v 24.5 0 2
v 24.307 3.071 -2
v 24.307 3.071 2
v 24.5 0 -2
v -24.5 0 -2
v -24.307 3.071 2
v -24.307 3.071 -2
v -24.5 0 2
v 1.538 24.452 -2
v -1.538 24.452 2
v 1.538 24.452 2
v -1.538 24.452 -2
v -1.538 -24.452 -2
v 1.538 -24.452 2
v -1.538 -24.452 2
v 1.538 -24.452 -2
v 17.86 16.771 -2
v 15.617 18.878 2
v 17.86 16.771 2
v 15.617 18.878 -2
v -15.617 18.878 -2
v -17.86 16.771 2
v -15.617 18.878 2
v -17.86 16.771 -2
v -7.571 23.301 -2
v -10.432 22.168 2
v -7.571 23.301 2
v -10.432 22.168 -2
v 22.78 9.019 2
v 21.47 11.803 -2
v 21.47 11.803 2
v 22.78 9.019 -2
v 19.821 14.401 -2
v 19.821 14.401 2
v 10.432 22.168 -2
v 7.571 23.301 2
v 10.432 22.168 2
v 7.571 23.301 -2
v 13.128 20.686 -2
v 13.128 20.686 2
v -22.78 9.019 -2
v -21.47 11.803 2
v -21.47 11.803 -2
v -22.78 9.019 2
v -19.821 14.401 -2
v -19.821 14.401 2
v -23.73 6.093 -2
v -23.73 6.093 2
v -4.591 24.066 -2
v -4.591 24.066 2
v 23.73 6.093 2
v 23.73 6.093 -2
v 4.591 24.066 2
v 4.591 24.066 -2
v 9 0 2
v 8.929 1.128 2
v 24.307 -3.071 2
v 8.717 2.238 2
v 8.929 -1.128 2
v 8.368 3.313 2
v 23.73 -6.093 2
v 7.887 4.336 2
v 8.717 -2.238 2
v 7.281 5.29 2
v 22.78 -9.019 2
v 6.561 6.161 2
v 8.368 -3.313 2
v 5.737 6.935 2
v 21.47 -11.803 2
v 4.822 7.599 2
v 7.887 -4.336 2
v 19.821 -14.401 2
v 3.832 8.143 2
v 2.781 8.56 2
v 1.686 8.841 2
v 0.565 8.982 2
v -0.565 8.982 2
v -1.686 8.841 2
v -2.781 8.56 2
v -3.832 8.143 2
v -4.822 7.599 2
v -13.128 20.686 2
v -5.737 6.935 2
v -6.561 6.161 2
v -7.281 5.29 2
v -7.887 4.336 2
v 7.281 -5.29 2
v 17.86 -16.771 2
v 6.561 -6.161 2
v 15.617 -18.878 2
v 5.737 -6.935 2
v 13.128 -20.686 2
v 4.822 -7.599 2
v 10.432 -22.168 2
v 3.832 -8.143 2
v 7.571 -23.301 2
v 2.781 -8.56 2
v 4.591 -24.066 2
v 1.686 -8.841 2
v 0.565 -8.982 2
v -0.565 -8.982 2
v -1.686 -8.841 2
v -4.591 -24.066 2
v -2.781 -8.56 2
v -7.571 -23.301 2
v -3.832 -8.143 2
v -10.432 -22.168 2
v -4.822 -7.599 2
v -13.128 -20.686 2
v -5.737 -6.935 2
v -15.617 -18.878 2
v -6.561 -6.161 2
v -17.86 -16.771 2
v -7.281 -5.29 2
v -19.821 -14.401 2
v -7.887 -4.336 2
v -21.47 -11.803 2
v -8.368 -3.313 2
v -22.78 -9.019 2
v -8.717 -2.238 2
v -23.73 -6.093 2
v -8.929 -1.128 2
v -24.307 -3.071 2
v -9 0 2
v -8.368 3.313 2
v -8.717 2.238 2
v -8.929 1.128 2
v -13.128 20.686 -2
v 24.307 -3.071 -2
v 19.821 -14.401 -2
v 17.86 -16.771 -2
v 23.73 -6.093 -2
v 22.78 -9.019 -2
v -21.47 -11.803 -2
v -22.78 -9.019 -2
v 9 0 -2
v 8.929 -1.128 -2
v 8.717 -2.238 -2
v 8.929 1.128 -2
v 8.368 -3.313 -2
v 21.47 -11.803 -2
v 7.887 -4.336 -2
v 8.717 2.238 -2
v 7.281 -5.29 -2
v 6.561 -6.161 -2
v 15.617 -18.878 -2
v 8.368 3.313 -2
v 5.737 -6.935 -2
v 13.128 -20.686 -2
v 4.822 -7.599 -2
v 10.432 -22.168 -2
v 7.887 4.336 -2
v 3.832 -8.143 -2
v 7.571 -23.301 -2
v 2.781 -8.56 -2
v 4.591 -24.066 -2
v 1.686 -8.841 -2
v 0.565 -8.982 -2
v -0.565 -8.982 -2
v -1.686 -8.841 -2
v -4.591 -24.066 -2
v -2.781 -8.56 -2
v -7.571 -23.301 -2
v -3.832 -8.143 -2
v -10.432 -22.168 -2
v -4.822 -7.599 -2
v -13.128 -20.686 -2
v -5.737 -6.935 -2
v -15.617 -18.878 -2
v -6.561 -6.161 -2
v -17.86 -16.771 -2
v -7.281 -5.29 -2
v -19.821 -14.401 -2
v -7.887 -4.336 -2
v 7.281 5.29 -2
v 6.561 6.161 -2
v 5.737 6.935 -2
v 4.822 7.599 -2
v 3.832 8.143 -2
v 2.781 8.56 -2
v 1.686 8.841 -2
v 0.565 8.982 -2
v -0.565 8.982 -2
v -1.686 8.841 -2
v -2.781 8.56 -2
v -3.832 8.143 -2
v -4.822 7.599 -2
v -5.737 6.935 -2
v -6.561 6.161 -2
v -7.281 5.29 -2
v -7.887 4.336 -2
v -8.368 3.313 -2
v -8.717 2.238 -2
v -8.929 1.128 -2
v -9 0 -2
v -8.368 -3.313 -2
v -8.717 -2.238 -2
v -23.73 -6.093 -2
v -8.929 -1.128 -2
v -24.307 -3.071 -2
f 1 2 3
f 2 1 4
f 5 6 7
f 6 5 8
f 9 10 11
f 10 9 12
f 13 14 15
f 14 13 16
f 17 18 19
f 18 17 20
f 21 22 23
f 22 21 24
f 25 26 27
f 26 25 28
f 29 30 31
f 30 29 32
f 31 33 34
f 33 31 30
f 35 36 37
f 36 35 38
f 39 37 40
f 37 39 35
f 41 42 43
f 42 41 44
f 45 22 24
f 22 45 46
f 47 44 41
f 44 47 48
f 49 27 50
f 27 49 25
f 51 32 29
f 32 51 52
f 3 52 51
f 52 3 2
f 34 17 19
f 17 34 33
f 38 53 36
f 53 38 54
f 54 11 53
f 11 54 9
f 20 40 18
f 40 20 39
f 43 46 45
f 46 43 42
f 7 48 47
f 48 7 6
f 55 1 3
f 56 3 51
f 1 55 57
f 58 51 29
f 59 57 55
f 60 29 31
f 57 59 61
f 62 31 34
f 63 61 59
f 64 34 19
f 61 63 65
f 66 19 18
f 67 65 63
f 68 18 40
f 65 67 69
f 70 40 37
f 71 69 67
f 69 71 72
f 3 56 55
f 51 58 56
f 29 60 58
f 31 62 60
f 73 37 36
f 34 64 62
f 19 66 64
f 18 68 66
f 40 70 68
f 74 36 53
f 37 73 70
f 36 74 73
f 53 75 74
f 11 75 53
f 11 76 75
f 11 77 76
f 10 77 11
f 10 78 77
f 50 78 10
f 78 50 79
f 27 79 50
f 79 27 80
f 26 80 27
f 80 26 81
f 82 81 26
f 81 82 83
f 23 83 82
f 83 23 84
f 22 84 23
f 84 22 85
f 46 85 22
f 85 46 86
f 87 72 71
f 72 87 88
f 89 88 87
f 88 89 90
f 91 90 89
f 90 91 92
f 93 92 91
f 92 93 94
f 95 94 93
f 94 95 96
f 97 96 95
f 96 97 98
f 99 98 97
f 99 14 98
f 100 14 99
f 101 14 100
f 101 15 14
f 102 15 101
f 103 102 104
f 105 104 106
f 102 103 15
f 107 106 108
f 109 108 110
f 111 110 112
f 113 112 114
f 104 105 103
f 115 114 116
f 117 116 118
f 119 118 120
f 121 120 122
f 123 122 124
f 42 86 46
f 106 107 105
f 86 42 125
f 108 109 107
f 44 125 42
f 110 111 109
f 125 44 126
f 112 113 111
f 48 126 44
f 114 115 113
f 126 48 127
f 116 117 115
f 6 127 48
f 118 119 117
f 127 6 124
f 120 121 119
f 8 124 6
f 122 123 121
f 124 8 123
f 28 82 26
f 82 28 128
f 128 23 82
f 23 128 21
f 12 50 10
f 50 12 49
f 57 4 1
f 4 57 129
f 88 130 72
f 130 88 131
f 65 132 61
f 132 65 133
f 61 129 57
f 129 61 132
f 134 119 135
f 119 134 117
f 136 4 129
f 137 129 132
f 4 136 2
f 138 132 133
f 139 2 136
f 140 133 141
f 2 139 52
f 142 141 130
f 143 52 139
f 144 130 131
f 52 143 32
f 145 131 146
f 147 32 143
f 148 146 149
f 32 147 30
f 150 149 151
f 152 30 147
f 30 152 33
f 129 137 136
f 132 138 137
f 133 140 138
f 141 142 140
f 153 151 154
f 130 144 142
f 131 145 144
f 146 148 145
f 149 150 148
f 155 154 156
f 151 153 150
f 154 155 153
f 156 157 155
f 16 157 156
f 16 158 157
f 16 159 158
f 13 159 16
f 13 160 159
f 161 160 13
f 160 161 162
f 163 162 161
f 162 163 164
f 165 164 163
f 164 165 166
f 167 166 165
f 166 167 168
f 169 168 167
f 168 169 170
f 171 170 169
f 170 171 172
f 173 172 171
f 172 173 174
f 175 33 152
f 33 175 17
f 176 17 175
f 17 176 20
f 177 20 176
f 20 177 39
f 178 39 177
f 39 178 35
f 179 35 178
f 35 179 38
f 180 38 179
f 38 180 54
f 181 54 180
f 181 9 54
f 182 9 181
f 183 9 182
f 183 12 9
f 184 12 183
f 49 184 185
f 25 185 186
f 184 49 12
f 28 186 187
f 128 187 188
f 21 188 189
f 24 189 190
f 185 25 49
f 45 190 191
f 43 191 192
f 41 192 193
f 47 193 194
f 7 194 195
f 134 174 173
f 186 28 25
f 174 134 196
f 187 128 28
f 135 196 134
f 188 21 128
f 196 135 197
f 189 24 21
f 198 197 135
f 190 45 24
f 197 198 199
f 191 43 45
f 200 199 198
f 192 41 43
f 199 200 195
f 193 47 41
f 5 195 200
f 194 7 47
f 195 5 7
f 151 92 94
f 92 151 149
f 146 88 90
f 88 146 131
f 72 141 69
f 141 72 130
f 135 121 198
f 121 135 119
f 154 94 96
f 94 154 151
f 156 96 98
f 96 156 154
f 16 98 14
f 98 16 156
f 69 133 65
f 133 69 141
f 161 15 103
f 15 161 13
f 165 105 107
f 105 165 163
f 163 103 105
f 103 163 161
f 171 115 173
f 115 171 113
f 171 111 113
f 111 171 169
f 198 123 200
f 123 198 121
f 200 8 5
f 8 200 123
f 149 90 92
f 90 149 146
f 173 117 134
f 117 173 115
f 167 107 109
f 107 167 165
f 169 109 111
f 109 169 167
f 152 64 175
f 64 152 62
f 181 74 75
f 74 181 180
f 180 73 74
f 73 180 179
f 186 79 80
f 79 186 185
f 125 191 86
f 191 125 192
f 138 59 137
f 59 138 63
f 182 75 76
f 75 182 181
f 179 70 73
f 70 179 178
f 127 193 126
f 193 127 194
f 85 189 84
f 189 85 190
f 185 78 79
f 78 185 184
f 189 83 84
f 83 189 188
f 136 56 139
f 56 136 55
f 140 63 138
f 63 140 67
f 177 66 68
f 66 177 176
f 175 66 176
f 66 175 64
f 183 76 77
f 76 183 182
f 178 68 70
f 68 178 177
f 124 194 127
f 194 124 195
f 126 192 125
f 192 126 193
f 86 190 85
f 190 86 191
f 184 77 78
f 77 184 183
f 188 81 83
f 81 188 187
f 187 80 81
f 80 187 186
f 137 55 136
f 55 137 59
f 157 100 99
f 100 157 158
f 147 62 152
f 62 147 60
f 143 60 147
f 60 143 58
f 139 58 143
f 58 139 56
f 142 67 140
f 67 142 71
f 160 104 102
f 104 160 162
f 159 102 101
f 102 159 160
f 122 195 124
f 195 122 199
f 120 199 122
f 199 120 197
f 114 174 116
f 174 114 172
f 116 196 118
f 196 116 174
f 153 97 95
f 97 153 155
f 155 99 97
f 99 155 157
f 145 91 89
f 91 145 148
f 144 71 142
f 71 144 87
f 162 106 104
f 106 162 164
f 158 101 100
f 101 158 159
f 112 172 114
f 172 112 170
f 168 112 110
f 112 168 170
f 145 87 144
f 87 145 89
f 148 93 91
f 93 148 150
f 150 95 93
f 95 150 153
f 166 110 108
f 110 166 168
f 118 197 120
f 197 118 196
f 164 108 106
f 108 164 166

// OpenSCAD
$fn = 50;


difference() {
	union() {
		translate(v = [0, 0, -2.0000000000]) {
			cylinder(h = 4, r = 24.5000000000);
		}
	}
	union() {
		translate(v = [0, 0, -100.0000000000]) {
			cylinder(h = 200, r = 9);
		}
	}
}
